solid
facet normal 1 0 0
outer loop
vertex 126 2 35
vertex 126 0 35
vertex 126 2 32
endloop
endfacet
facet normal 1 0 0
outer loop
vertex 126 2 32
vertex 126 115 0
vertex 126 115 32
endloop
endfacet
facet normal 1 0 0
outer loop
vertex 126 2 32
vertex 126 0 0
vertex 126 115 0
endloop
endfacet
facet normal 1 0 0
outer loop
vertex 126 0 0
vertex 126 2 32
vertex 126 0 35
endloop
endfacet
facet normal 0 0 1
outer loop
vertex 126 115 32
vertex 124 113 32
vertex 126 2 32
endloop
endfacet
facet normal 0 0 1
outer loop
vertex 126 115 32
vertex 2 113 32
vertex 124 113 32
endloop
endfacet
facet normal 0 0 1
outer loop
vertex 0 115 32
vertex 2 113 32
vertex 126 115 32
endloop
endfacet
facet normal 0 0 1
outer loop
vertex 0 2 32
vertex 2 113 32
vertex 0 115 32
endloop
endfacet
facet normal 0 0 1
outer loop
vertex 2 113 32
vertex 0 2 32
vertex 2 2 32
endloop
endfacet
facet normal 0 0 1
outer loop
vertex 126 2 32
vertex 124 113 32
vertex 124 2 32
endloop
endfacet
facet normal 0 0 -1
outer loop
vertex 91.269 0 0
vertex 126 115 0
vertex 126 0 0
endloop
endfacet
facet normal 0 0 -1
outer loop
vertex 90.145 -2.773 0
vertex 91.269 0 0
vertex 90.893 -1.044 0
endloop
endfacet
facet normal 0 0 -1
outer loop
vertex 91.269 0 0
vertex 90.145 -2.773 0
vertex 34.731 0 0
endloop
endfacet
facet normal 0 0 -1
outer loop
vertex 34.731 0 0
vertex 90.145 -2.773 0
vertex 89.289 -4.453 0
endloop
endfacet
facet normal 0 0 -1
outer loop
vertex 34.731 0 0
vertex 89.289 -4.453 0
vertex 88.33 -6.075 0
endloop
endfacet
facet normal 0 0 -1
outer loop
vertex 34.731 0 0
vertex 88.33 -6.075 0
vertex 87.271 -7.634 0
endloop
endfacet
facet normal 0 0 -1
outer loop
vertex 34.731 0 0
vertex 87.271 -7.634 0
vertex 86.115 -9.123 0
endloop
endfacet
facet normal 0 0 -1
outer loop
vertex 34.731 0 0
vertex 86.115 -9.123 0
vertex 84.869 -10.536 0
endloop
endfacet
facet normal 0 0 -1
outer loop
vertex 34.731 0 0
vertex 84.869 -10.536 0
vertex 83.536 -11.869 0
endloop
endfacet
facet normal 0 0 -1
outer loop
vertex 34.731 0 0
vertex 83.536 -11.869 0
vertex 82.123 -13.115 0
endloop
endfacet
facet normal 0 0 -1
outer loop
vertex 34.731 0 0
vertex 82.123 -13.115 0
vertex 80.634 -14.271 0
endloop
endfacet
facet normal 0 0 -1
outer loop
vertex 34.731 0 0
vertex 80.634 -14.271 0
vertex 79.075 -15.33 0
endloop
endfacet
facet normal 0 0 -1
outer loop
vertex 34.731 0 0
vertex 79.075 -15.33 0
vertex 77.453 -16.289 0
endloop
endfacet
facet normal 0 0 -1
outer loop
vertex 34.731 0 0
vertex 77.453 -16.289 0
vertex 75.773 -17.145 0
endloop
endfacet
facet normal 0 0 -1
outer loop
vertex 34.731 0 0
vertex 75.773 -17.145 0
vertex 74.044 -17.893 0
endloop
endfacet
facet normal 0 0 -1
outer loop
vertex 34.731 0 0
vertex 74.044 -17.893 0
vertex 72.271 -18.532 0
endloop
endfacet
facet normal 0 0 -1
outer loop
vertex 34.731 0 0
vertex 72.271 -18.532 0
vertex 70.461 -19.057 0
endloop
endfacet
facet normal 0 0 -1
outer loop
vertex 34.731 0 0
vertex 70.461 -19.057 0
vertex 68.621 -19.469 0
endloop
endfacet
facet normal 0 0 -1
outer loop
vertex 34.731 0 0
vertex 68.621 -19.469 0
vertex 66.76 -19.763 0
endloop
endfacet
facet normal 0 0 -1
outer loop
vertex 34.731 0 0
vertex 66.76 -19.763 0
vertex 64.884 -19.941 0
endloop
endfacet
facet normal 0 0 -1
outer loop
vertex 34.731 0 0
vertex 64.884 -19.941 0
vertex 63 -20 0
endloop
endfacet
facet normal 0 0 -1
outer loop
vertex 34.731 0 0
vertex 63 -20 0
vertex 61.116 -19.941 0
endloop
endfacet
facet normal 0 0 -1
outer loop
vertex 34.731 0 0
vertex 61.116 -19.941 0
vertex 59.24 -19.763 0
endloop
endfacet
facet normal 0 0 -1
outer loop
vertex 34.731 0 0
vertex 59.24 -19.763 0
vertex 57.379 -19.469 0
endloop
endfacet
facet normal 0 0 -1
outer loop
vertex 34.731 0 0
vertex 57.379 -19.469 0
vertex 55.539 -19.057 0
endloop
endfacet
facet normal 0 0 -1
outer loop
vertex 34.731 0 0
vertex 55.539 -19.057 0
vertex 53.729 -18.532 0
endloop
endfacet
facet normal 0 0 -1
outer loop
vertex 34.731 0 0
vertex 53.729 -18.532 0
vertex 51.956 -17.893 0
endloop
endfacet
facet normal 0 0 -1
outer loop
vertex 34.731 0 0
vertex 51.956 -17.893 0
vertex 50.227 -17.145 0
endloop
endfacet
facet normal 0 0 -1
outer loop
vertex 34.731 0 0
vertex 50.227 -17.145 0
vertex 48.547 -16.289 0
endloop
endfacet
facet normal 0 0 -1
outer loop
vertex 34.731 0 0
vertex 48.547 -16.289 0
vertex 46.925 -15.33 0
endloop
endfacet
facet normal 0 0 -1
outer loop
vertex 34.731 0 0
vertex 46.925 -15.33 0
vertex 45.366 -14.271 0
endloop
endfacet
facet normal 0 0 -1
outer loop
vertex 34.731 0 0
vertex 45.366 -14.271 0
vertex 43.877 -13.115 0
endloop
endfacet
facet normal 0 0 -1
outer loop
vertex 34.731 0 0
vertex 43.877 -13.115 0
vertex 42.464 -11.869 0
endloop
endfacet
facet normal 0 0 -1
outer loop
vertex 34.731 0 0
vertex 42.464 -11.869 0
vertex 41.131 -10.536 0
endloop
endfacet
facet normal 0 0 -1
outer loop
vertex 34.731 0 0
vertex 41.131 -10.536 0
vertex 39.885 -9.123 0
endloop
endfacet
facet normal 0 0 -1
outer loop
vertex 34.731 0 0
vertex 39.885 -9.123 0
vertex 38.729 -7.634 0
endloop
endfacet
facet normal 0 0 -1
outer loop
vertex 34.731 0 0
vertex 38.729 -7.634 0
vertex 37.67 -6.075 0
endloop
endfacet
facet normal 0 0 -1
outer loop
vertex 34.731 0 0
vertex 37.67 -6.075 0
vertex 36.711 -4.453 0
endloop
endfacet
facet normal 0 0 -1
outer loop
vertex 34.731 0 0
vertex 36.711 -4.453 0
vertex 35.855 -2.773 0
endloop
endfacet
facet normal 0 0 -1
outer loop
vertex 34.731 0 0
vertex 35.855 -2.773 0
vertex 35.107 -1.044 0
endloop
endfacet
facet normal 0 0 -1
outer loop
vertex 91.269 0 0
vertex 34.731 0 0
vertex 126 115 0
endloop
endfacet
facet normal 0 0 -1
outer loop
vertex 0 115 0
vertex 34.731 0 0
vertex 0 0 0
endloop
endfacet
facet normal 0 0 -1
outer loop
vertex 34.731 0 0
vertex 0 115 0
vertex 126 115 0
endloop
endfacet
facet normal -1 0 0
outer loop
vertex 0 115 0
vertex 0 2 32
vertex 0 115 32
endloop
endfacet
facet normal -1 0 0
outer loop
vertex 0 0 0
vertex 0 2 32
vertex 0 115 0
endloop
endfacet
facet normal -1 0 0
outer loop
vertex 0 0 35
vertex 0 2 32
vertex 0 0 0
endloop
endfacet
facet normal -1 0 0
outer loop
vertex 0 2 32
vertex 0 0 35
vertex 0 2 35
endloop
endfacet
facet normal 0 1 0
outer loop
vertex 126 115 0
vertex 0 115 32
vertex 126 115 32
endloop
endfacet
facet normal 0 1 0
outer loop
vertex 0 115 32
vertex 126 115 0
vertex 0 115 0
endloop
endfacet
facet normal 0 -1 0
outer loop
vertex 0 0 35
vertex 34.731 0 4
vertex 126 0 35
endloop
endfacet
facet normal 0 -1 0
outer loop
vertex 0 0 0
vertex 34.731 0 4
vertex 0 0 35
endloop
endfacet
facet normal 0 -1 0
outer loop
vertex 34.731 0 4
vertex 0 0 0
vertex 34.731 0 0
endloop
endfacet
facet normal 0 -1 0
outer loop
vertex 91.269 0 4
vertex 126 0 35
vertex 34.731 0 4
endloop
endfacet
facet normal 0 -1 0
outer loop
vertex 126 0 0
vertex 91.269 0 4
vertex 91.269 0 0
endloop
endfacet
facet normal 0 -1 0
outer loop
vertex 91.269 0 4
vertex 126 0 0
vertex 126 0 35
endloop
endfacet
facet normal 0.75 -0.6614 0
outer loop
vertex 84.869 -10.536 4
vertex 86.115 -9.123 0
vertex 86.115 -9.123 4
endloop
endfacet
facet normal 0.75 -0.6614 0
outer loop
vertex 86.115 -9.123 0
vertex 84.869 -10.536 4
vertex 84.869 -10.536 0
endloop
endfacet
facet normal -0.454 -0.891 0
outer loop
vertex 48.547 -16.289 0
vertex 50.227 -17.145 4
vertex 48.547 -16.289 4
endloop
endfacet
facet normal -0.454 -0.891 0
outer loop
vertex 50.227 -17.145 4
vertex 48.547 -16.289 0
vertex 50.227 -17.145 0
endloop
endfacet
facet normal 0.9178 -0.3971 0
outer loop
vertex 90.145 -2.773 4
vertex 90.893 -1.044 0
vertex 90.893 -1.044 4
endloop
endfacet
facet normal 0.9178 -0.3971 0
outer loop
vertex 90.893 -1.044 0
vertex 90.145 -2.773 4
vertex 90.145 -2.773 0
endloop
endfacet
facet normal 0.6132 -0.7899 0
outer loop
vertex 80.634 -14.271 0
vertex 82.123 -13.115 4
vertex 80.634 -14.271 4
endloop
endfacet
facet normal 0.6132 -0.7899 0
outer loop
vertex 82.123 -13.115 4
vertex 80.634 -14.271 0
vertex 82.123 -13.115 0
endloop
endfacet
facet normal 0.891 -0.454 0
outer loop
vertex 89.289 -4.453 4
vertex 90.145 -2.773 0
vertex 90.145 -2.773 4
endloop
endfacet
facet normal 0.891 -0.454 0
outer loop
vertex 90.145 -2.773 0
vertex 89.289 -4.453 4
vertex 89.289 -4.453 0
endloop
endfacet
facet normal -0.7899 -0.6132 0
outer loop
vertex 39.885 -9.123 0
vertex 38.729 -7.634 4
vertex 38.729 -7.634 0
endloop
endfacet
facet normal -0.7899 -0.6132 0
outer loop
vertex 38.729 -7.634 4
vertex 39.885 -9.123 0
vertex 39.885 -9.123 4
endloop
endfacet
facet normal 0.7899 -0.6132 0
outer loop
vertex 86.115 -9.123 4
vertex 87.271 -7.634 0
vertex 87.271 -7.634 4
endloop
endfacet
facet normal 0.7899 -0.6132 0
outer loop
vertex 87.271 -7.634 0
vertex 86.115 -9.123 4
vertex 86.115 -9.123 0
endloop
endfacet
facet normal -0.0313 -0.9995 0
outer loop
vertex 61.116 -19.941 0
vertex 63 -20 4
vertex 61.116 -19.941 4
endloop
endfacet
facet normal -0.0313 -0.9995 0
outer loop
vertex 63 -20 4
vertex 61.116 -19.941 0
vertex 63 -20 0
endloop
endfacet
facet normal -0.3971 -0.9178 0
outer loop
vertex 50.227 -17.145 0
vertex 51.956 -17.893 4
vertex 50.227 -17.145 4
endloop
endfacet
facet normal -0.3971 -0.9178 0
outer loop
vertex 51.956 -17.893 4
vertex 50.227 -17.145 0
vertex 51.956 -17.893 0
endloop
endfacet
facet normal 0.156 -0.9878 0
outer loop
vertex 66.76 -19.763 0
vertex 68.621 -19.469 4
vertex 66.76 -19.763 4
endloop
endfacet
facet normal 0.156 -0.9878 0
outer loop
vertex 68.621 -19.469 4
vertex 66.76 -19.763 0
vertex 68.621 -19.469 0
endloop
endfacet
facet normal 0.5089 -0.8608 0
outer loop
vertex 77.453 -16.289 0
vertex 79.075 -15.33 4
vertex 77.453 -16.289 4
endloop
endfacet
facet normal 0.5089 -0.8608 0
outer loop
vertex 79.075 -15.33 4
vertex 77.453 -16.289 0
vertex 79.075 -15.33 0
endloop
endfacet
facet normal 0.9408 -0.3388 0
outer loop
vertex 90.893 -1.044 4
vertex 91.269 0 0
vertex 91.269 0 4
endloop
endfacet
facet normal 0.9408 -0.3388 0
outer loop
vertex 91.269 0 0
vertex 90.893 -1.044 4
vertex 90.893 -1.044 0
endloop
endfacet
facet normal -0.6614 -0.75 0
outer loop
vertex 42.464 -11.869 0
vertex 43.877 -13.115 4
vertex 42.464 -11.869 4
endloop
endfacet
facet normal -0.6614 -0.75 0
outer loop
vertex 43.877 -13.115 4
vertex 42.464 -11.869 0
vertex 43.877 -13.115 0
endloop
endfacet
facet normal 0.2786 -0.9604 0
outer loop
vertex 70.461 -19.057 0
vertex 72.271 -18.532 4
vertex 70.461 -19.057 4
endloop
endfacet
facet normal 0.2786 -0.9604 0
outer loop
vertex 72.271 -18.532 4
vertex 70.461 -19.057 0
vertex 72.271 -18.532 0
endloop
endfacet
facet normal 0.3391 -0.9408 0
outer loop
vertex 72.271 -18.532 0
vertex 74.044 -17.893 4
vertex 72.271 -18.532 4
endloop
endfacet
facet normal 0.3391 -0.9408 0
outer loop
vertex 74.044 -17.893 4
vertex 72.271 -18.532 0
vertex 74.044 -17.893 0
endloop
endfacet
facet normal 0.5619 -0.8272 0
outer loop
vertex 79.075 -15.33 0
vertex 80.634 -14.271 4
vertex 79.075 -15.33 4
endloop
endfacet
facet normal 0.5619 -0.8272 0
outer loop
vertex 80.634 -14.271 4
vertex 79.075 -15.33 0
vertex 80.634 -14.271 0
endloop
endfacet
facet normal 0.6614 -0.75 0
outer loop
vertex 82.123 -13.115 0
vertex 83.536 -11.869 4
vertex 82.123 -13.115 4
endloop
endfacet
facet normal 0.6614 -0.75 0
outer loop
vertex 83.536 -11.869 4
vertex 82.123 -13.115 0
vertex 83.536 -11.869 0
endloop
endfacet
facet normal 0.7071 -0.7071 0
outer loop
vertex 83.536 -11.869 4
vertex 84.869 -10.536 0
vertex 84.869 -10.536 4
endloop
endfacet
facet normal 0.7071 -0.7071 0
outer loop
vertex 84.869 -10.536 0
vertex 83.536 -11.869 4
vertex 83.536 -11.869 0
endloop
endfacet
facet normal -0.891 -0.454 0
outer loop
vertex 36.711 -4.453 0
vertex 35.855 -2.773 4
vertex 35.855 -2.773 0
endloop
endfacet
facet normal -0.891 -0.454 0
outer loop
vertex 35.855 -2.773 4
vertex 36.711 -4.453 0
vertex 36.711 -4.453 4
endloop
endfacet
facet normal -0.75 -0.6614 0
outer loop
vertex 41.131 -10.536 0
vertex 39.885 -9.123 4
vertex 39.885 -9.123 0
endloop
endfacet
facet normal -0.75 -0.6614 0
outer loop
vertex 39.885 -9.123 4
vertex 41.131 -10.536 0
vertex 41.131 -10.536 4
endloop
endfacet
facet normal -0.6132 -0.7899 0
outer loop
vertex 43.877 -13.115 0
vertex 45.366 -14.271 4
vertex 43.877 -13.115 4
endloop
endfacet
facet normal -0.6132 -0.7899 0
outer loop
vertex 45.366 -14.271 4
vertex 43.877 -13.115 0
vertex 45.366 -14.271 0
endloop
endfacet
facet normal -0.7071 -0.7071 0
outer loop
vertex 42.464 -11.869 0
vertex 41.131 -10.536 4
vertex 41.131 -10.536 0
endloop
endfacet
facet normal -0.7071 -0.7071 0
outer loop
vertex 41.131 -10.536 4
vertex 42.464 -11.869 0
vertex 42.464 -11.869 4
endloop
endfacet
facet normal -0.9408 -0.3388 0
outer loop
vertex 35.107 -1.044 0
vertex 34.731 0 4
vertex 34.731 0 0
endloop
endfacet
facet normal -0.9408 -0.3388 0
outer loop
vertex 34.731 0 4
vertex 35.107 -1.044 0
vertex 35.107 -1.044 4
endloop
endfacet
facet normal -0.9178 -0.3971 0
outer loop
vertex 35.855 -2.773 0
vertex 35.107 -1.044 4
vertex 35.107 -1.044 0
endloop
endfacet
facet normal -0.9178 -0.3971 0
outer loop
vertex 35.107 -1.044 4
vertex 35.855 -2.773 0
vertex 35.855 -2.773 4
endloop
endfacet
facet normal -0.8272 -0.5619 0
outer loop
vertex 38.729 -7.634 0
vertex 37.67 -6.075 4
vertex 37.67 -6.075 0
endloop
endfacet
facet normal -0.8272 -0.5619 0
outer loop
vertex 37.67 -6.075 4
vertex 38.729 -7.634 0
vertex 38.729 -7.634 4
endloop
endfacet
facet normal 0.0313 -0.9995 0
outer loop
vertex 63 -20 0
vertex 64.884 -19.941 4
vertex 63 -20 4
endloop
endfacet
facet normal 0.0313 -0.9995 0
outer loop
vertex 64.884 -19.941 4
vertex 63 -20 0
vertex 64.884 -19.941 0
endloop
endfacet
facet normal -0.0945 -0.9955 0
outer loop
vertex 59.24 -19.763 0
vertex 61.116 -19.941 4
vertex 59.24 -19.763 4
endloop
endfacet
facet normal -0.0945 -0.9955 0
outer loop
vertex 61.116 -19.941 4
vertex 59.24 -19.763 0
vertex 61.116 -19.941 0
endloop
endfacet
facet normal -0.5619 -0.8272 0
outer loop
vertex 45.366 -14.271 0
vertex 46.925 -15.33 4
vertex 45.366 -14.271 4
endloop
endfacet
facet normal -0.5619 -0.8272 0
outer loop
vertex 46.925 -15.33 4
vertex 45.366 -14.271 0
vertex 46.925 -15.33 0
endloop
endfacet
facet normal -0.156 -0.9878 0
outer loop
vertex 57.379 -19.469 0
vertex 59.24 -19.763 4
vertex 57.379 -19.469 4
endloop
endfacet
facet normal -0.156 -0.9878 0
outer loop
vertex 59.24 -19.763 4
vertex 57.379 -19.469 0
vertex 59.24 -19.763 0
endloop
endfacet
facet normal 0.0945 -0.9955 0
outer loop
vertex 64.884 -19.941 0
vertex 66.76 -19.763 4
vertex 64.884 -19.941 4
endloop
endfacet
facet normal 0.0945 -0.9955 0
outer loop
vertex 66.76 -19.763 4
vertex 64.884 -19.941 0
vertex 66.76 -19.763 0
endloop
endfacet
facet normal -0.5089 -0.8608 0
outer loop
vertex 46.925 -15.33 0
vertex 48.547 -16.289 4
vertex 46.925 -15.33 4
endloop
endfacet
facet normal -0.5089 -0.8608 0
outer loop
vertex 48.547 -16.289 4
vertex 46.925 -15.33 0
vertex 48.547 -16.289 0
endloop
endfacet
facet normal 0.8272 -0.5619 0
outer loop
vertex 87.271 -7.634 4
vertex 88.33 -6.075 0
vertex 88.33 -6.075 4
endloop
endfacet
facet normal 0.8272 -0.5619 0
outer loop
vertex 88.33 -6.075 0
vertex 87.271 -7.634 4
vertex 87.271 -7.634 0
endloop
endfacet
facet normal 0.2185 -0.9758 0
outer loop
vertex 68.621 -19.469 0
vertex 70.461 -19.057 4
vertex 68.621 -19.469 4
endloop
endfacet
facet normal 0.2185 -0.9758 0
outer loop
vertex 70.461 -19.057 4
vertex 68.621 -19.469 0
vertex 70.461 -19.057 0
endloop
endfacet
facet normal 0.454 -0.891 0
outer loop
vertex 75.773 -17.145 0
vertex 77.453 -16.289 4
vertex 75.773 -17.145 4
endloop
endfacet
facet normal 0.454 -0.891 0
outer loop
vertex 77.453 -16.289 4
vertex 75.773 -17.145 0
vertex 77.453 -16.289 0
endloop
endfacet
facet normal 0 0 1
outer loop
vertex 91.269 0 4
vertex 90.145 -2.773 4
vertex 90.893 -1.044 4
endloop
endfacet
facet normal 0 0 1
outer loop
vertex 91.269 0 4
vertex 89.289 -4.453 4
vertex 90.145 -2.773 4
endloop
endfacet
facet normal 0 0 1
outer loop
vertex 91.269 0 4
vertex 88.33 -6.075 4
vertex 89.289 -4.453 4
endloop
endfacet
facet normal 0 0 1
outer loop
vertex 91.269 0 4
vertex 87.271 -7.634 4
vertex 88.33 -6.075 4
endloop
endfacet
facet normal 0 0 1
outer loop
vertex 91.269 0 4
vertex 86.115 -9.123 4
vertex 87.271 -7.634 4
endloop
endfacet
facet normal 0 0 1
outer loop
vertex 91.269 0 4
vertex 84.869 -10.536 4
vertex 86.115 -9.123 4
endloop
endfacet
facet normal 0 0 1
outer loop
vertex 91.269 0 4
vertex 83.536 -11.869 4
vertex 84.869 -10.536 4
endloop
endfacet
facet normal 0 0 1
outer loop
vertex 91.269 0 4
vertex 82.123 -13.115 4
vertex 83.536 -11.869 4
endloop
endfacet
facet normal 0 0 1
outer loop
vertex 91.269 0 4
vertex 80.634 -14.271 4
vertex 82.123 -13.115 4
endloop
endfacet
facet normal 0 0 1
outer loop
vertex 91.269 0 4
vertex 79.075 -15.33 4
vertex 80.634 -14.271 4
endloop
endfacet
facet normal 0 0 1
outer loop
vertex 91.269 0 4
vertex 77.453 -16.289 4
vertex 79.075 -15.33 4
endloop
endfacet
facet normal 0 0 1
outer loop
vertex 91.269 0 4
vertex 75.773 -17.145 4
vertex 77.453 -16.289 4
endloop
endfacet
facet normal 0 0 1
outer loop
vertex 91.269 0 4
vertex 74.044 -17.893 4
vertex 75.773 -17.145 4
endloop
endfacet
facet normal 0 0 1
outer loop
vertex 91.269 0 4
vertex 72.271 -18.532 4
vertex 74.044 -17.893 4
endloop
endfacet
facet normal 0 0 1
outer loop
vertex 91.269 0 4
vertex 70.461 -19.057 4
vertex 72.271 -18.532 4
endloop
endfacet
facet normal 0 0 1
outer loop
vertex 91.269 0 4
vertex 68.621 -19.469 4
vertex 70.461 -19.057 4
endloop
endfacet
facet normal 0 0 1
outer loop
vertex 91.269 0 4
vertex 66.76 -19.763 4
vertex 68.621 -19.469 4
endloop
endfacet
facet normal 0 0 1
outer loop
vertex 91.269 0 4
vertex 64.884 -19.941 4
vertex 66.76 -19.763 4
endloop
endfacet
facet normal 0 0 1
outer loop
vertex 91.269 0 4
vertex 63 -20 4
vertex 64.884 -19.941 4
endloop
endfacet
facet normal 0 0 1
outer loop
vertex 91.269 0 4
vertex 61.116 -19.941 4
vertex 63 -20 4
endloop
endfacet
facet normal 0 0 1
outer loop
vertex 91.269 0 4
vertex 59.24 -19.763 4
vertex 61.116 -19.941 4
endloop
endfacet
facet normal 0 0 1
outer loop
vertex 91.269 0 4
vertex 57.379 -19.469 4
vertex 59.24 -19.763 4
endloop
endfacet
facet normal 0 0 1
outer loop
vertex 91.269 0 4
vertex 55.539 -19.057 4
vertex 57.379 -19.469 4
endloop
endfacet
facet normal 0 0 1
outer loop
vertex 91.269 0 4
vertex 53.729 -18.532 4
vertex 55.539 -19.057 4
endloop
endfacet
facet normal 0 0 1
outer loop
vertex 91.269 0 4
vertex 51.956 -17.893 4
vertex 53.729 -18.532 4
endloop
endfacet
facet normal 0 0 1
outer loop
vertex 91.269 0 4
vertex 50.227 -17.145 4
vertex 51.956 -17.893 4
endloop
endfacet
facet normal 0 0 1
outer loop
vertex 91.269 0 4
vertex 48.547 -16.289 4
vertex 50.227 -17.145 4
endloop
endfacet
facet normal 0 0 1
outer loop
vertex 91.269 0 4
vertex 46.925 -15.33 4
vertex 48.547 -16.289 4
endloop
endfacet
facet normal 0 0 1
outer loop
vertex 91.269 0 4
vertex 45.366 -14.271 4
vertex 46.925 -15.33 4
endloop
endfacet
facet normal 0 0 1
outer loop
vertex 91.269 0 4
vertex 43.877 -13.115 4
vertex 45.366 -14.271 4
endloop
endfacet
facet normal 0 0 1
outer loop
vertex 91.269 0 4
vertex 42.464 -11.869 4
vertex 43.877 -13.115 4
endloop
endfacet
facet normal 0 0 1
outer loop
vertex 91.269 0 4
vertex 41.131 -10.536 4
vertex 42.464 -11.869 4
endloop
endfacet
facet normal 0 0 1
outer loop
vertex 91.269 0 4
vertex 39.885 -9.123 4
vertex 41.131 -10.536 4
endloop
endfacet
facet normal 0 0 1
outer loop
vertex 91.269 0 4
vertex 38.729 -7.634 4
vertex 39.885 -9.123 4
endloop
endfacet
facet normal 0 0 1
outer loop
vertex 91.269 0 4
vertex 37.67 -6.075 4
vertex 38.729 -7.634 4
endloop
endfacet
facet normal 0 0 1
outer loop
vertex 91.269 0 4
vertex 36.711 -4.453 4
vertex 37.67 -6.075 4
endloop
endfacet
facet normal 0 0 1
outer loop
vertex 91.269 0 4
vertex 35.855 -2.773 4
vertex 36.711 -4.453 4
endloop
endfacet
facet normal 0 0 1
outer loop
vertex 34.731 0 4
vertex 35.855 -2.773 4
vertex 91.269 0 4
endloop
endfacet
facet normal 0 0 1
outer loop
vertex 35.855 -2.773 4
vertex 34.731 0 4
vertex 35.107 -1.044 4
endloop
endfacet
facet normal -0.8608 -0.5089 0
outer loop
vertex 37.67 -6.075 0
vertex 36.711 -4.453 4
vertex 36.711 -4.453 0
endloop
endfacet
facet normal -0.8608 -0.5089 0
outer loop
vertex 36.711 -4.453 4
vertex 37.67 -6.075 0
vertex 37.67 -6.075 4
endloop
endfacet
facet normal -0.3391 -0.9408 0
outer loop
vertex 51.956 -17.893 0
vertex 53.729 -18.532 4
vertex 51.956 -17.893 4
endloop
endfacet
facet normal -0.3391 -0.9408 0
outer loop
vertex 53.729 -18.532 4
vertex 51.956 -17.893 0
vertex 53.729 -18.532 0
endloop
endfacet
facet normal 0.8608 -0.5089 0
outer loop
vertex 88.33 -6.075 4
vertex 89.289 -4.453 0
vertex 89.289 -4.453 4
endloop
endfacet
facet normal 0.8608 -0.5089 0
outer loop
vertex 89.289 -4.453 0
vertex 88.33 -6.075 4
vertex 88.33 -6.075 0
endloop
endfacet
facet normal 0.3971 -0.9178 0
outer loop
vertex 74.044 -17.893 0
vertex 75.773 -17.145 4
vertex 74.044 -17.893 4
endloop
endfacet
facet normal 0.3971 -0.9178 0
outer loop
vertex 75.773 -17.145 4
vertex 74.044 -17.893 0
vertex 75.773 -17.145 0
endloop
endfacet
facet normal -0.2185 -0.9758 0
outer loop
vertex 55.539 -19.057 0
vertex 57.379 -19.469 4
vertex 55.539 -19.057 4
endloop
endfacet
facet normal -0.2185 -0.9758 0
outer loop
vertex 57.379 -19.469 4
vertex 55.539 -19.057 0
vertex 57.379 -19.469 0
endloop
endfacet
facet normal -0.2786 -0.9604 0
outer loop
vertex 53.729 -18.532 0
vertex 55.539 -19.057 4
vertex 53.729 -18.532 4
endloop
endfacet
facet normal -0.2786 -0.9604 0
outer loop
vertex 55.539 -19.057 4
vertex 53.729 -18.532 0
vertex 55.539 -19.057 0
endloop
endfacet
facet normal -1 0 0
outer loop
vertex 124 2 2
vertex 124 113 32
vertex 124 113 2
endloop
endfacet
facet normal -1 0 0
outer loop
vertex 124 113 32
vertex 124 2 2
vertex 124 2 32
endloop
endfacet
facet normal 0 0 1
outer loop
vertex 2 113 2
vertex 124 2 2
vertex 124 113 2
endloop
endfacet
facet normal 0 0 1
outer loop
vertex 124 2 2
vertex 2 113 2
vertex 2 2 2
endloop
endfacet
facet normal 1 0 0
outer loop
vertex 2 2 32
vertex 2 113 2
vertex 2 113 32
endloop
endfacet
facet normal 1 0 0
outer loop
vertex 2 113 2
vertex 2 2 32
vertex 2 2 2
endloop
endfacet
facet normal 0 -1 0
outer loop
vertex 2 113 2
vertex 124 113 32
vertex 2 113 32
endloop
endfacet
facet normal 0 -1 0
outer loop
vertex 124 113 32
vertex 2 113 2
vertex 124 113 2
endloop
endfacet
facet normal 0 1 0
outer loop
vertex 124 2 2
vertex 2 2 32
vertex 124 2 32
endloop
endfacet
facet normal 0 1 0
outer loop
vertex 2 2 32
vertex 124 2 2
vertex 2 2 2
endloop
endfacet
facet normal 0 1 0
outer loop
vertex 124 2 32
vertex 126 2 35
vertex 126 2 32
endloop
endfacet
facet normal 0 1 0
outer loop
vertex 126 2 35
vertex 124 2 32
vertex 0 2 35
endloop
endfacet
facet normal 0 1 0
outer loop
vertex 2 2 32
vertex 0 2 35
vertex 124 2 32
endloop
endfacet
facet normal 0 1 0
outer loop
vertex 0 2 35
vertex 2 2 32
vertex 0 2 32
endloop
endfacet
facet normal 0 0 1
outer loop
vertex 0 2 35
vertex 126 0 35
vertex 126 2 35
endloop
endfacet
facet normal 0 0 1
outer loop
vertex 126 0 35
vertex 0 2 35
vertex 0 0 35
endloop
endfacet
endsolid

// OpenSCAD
h1 = 32.0;
h2 = 35.0;
lg = 115.0;
wi = 126.0;
$fn = 100;

union() {
    difference(){
        union() {
            cube([wi, lg, h1], center = false);
            translate([wi/2, 10, 0]) {
                cylinder(h=4, r=30, center = false);
            }
        }
        translate([2,2,2]){
            cube([wi-4, lg-4, h1], center = false);
        }
    };
    cube([wi, 2, h2], center = false);
};
